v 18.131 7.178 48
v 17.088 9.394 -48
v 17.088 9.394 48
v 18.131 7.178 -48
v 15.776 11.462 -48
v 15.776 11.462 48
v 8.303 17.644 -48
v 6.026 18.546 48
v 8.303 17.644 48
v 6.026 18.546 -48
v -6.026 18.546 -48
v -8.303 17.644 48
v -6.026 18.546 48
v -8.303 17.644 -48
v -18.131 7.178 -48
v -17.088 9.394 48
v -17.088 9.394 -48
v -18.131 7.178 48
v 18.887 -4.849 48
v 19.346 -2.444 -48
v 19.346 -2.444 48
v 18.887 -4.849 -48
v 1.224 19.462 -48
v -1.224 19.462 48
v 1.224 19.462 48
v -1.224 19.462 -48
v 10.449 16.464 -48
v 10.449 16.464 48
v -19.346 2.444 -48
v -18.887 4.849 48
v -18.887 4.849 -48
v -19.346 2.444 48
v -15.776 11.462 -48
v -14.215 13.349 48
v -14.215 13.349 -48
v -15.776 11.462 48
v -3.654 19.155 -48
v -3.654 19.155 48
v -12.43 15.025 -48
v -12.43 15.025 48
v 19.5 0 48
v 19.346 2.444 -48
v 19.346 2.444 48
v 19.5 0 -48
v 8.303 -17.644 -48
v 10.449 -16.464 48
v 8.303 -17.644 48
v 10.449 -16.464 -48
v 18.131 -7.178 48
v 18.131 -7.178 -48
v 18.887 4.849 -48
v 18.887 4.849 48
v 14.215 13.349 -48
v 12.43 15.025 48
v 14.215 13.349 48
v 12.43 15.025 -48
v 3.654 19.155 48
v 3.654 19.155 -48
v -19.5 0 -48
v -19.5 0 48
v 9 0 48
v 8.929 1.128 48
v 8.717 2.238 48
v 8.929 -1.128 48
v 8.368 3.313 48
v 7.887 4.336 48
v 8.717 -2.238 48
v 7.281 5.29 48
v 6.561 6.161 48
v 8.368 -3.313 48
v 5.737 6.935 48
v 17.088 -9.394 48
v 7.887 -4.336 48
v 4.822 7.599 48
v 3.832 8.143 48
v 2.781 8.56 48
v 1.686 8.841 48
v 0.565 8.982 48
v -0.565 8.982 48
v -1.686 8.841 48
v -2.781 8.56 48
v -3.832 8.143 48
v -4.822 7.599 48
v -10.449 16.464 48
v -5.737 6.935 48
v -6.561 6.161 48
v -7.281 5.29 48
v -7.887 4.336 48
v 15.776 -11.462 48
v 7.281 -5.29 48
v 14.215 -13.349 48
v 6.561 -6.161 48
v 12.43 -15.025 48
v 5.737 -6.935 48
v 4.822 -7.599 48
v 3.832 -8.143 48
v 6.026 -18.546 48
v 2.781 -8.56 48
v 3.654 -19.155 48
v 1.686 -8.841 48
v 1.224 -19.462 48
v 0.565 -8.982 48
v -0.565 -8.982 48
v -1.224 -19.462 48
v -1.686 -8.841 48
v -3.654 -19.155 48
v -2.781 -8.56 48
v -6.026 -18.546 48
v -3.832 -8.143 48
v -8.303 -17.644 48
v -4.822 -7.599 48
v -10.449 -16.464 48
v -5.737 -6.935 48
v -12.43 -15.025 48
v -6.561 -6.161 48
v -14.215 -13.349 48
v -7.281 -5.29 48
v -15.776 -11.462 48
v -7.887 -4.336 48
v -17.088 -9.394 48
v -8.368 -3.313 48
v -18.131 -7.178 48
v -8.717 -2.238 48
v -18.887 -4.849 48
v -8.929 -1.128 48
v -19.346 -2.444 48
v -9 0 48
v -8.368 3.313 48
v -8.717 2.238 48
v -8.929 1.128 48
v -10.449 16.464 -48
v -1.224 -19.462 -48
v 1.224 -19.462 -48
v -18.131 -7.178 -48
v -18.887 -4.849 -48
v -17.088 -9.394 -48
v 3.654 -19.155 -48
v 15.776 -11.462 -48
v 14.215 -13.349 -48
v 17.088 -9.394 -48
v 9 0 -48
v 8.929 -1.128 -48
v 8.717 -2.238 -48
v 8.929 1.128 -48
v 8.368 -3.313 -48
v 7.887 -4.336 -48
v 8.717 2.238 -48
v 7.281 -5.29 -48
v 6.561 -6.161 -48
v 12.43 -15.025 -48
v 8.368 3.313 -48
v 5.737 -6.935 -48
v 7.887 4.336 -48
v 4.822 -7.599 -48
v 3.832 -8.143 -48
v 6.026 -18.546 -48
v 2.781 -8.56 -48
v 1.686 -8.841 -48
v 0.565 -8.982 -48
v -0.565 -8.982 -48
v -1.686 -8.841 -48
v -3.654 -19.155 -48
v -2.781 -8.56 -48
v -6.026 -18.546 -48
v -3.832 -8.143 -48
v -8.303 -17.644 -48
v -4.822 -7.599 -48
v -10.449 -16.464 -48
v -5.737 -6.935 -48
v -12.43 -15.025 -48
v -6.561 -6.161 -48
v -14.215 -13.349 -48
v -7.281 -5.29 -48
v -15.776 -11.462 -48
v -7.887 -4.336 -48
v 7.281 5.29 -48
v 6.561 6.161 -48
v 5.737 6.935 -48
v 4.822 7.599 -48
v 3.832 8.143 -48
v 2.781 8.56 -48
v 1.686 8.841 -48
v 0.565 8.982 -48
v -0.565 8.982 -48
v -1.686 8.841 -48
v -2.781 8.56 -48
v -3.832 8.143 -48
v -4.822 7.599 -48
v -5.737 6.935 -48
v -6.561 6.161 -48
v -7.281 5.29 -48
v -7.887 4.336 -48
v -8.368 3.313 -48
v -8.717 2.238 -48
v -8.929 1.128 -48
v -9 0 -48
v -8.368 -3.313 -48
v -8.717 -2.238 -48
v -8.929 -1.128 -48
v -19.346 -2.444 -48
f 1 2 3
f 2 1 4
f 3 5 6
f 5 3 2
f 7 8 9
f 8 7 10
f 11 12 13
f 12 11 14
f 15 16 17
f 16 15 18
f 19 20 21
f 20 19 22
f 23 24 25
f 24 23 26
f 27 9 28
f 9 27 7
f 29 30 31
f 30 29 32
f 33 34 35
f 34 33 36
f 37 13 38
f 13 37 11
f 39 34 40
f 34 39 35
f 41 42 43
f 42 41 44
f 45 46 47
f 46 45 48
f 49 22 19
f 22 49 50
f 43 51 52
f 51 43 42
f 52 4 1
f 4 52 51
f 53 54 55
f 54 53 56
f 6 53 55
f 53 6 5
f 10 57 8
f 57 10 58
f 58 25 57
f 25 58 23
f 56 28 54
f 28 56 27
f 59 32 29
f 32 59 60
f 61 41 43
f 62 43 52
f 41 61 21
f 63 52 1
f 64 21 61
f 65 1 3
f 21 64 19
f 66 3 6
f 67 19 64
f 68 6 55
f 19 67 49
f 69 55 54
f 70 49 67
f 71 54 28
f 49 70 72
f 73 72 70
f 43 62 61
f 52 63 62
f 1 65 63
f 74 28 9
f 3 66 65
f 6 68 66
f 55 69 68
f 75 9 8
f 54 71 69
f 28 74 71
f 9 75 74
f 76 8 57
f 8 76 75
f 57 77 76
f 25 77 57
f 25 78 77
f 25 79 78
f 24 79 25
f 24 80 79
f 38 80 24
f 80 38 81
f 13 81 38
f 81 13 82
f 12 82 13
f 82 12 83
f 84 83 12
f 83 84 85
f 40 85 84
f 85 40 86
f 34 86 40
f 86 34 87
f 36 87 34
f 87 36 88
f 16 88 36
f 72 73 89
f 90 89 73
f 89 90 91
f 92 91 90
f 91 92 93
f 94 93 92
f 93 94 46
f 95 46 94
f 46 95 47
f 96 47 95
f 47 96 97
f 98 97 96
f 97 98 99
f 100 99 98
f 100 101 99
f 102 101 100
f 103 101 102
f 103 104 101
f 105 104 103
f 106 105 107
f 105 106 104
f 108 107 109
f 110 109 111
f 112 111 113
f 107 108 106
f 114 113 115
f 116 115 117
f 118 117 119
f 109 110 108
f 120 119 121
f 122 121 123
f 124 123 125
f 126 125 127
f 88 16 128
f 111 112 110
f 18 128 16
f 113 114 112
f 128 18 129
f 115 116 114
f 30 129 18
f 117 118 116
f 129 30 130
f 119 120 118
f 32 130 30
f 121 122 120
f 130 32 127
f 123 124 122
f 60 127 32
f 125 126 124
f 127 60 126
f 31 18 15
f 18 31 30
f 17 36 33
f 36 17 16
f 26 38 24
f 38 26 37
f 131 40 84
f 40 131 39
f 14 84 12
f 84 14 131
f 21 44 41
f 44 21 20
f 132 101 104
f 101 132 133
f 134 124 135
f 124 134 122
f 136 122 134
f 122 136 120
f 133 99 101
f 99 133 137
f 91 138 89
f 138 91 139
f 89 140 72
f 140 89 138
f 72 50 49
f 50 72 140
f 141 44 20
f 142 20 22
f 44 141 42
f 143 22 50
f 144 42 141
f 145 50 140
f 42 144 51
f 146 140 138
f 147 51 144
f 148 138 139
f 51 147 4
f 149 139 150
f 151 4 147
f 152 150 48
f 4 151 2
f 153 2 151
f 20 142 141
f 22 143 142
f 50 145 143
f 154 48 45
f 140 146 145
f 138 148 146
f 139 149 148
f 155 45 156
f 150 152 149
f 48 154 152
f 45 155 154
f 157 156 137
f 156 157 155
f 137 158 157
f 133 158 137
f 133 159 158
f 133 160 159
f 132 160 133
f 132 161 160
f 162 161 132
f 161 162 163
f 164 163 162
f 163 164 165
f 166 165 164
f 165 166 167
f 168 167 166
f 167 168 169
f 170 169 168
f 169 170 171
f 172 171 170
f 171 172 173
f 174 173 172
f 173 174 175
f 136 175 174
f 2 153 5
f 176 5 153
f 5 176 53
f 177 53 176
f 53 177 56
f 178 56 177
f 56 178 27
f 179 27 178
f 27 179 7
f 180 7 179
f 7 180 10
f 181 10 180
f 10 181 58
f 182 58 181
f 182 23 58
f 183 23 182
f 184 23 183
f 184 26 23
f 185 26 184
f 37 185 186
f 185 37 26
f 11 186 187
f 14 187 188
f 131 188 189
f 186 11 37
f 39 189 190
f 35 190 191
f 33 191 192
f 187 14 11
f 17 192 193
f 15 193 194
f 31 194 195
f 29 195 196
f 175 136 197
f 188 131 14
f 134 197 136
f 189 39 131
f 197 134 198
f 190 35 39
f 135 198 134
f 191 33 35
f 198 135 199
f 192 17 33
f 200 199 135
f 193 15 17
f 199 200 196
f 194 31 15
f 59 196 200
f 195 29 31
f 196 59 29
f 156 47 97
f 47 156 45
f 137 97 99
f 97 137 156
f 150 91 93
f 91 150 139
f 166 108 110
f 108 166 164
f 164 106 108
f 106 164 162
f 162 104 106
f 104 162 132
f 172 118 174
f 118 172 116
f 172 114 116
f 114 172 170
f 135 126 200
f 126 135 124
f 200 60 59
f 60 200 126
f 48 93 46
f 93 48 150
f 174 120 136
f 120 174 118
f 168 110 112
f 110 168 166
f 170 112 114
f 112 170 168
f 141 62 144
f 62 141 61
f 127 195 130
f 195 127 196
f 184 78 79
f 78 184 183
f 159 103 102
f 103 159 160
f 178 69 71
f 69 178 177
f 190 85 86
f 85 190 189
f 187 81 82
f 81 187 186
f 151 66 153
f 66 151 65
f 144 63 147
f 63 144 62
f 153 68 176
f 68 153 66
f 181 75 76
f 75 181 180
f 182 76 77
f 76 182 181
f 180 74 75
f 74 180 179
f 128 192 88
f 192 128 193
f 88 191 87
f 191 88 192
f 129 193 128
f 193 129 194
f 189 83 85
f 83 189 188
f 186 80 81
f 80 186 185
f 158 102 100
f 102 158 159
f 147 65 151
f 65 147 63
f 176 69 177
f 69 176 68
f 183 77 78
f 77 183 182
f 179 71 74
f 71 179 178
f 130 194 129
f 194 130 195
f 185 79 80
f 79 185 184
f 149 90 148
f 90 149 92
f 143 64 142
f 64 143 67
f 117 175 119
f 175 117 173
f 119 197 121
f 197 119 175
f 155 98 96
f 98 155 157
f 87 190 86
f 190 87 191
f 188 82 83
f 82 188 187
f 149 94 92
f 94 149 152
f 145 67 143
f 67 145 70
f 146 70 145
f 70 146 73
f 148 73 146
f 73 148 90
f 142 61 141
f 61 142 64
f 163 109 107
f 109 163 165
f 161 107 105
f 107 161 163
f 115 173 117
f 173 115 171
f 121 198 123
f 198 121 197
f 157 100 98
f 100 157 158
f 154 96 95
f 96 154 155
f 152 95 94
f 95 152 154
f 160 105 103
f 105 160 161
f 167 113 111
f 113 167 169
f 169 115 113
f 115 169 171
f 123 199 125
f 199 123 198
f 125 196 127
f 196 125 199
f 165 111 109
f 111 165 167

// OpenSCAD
$fn = 50;


difference() {
	union() {
		translate(v = [0, 0, -48.0000000000]) {
			cylinder(h = 96, r = 19.5000000000);
		}
	}
	union() {
		translate(v = [0, 0, -100.0000000000]) {
			cylinder(h = 200, r = 9);
		}
	}
}
